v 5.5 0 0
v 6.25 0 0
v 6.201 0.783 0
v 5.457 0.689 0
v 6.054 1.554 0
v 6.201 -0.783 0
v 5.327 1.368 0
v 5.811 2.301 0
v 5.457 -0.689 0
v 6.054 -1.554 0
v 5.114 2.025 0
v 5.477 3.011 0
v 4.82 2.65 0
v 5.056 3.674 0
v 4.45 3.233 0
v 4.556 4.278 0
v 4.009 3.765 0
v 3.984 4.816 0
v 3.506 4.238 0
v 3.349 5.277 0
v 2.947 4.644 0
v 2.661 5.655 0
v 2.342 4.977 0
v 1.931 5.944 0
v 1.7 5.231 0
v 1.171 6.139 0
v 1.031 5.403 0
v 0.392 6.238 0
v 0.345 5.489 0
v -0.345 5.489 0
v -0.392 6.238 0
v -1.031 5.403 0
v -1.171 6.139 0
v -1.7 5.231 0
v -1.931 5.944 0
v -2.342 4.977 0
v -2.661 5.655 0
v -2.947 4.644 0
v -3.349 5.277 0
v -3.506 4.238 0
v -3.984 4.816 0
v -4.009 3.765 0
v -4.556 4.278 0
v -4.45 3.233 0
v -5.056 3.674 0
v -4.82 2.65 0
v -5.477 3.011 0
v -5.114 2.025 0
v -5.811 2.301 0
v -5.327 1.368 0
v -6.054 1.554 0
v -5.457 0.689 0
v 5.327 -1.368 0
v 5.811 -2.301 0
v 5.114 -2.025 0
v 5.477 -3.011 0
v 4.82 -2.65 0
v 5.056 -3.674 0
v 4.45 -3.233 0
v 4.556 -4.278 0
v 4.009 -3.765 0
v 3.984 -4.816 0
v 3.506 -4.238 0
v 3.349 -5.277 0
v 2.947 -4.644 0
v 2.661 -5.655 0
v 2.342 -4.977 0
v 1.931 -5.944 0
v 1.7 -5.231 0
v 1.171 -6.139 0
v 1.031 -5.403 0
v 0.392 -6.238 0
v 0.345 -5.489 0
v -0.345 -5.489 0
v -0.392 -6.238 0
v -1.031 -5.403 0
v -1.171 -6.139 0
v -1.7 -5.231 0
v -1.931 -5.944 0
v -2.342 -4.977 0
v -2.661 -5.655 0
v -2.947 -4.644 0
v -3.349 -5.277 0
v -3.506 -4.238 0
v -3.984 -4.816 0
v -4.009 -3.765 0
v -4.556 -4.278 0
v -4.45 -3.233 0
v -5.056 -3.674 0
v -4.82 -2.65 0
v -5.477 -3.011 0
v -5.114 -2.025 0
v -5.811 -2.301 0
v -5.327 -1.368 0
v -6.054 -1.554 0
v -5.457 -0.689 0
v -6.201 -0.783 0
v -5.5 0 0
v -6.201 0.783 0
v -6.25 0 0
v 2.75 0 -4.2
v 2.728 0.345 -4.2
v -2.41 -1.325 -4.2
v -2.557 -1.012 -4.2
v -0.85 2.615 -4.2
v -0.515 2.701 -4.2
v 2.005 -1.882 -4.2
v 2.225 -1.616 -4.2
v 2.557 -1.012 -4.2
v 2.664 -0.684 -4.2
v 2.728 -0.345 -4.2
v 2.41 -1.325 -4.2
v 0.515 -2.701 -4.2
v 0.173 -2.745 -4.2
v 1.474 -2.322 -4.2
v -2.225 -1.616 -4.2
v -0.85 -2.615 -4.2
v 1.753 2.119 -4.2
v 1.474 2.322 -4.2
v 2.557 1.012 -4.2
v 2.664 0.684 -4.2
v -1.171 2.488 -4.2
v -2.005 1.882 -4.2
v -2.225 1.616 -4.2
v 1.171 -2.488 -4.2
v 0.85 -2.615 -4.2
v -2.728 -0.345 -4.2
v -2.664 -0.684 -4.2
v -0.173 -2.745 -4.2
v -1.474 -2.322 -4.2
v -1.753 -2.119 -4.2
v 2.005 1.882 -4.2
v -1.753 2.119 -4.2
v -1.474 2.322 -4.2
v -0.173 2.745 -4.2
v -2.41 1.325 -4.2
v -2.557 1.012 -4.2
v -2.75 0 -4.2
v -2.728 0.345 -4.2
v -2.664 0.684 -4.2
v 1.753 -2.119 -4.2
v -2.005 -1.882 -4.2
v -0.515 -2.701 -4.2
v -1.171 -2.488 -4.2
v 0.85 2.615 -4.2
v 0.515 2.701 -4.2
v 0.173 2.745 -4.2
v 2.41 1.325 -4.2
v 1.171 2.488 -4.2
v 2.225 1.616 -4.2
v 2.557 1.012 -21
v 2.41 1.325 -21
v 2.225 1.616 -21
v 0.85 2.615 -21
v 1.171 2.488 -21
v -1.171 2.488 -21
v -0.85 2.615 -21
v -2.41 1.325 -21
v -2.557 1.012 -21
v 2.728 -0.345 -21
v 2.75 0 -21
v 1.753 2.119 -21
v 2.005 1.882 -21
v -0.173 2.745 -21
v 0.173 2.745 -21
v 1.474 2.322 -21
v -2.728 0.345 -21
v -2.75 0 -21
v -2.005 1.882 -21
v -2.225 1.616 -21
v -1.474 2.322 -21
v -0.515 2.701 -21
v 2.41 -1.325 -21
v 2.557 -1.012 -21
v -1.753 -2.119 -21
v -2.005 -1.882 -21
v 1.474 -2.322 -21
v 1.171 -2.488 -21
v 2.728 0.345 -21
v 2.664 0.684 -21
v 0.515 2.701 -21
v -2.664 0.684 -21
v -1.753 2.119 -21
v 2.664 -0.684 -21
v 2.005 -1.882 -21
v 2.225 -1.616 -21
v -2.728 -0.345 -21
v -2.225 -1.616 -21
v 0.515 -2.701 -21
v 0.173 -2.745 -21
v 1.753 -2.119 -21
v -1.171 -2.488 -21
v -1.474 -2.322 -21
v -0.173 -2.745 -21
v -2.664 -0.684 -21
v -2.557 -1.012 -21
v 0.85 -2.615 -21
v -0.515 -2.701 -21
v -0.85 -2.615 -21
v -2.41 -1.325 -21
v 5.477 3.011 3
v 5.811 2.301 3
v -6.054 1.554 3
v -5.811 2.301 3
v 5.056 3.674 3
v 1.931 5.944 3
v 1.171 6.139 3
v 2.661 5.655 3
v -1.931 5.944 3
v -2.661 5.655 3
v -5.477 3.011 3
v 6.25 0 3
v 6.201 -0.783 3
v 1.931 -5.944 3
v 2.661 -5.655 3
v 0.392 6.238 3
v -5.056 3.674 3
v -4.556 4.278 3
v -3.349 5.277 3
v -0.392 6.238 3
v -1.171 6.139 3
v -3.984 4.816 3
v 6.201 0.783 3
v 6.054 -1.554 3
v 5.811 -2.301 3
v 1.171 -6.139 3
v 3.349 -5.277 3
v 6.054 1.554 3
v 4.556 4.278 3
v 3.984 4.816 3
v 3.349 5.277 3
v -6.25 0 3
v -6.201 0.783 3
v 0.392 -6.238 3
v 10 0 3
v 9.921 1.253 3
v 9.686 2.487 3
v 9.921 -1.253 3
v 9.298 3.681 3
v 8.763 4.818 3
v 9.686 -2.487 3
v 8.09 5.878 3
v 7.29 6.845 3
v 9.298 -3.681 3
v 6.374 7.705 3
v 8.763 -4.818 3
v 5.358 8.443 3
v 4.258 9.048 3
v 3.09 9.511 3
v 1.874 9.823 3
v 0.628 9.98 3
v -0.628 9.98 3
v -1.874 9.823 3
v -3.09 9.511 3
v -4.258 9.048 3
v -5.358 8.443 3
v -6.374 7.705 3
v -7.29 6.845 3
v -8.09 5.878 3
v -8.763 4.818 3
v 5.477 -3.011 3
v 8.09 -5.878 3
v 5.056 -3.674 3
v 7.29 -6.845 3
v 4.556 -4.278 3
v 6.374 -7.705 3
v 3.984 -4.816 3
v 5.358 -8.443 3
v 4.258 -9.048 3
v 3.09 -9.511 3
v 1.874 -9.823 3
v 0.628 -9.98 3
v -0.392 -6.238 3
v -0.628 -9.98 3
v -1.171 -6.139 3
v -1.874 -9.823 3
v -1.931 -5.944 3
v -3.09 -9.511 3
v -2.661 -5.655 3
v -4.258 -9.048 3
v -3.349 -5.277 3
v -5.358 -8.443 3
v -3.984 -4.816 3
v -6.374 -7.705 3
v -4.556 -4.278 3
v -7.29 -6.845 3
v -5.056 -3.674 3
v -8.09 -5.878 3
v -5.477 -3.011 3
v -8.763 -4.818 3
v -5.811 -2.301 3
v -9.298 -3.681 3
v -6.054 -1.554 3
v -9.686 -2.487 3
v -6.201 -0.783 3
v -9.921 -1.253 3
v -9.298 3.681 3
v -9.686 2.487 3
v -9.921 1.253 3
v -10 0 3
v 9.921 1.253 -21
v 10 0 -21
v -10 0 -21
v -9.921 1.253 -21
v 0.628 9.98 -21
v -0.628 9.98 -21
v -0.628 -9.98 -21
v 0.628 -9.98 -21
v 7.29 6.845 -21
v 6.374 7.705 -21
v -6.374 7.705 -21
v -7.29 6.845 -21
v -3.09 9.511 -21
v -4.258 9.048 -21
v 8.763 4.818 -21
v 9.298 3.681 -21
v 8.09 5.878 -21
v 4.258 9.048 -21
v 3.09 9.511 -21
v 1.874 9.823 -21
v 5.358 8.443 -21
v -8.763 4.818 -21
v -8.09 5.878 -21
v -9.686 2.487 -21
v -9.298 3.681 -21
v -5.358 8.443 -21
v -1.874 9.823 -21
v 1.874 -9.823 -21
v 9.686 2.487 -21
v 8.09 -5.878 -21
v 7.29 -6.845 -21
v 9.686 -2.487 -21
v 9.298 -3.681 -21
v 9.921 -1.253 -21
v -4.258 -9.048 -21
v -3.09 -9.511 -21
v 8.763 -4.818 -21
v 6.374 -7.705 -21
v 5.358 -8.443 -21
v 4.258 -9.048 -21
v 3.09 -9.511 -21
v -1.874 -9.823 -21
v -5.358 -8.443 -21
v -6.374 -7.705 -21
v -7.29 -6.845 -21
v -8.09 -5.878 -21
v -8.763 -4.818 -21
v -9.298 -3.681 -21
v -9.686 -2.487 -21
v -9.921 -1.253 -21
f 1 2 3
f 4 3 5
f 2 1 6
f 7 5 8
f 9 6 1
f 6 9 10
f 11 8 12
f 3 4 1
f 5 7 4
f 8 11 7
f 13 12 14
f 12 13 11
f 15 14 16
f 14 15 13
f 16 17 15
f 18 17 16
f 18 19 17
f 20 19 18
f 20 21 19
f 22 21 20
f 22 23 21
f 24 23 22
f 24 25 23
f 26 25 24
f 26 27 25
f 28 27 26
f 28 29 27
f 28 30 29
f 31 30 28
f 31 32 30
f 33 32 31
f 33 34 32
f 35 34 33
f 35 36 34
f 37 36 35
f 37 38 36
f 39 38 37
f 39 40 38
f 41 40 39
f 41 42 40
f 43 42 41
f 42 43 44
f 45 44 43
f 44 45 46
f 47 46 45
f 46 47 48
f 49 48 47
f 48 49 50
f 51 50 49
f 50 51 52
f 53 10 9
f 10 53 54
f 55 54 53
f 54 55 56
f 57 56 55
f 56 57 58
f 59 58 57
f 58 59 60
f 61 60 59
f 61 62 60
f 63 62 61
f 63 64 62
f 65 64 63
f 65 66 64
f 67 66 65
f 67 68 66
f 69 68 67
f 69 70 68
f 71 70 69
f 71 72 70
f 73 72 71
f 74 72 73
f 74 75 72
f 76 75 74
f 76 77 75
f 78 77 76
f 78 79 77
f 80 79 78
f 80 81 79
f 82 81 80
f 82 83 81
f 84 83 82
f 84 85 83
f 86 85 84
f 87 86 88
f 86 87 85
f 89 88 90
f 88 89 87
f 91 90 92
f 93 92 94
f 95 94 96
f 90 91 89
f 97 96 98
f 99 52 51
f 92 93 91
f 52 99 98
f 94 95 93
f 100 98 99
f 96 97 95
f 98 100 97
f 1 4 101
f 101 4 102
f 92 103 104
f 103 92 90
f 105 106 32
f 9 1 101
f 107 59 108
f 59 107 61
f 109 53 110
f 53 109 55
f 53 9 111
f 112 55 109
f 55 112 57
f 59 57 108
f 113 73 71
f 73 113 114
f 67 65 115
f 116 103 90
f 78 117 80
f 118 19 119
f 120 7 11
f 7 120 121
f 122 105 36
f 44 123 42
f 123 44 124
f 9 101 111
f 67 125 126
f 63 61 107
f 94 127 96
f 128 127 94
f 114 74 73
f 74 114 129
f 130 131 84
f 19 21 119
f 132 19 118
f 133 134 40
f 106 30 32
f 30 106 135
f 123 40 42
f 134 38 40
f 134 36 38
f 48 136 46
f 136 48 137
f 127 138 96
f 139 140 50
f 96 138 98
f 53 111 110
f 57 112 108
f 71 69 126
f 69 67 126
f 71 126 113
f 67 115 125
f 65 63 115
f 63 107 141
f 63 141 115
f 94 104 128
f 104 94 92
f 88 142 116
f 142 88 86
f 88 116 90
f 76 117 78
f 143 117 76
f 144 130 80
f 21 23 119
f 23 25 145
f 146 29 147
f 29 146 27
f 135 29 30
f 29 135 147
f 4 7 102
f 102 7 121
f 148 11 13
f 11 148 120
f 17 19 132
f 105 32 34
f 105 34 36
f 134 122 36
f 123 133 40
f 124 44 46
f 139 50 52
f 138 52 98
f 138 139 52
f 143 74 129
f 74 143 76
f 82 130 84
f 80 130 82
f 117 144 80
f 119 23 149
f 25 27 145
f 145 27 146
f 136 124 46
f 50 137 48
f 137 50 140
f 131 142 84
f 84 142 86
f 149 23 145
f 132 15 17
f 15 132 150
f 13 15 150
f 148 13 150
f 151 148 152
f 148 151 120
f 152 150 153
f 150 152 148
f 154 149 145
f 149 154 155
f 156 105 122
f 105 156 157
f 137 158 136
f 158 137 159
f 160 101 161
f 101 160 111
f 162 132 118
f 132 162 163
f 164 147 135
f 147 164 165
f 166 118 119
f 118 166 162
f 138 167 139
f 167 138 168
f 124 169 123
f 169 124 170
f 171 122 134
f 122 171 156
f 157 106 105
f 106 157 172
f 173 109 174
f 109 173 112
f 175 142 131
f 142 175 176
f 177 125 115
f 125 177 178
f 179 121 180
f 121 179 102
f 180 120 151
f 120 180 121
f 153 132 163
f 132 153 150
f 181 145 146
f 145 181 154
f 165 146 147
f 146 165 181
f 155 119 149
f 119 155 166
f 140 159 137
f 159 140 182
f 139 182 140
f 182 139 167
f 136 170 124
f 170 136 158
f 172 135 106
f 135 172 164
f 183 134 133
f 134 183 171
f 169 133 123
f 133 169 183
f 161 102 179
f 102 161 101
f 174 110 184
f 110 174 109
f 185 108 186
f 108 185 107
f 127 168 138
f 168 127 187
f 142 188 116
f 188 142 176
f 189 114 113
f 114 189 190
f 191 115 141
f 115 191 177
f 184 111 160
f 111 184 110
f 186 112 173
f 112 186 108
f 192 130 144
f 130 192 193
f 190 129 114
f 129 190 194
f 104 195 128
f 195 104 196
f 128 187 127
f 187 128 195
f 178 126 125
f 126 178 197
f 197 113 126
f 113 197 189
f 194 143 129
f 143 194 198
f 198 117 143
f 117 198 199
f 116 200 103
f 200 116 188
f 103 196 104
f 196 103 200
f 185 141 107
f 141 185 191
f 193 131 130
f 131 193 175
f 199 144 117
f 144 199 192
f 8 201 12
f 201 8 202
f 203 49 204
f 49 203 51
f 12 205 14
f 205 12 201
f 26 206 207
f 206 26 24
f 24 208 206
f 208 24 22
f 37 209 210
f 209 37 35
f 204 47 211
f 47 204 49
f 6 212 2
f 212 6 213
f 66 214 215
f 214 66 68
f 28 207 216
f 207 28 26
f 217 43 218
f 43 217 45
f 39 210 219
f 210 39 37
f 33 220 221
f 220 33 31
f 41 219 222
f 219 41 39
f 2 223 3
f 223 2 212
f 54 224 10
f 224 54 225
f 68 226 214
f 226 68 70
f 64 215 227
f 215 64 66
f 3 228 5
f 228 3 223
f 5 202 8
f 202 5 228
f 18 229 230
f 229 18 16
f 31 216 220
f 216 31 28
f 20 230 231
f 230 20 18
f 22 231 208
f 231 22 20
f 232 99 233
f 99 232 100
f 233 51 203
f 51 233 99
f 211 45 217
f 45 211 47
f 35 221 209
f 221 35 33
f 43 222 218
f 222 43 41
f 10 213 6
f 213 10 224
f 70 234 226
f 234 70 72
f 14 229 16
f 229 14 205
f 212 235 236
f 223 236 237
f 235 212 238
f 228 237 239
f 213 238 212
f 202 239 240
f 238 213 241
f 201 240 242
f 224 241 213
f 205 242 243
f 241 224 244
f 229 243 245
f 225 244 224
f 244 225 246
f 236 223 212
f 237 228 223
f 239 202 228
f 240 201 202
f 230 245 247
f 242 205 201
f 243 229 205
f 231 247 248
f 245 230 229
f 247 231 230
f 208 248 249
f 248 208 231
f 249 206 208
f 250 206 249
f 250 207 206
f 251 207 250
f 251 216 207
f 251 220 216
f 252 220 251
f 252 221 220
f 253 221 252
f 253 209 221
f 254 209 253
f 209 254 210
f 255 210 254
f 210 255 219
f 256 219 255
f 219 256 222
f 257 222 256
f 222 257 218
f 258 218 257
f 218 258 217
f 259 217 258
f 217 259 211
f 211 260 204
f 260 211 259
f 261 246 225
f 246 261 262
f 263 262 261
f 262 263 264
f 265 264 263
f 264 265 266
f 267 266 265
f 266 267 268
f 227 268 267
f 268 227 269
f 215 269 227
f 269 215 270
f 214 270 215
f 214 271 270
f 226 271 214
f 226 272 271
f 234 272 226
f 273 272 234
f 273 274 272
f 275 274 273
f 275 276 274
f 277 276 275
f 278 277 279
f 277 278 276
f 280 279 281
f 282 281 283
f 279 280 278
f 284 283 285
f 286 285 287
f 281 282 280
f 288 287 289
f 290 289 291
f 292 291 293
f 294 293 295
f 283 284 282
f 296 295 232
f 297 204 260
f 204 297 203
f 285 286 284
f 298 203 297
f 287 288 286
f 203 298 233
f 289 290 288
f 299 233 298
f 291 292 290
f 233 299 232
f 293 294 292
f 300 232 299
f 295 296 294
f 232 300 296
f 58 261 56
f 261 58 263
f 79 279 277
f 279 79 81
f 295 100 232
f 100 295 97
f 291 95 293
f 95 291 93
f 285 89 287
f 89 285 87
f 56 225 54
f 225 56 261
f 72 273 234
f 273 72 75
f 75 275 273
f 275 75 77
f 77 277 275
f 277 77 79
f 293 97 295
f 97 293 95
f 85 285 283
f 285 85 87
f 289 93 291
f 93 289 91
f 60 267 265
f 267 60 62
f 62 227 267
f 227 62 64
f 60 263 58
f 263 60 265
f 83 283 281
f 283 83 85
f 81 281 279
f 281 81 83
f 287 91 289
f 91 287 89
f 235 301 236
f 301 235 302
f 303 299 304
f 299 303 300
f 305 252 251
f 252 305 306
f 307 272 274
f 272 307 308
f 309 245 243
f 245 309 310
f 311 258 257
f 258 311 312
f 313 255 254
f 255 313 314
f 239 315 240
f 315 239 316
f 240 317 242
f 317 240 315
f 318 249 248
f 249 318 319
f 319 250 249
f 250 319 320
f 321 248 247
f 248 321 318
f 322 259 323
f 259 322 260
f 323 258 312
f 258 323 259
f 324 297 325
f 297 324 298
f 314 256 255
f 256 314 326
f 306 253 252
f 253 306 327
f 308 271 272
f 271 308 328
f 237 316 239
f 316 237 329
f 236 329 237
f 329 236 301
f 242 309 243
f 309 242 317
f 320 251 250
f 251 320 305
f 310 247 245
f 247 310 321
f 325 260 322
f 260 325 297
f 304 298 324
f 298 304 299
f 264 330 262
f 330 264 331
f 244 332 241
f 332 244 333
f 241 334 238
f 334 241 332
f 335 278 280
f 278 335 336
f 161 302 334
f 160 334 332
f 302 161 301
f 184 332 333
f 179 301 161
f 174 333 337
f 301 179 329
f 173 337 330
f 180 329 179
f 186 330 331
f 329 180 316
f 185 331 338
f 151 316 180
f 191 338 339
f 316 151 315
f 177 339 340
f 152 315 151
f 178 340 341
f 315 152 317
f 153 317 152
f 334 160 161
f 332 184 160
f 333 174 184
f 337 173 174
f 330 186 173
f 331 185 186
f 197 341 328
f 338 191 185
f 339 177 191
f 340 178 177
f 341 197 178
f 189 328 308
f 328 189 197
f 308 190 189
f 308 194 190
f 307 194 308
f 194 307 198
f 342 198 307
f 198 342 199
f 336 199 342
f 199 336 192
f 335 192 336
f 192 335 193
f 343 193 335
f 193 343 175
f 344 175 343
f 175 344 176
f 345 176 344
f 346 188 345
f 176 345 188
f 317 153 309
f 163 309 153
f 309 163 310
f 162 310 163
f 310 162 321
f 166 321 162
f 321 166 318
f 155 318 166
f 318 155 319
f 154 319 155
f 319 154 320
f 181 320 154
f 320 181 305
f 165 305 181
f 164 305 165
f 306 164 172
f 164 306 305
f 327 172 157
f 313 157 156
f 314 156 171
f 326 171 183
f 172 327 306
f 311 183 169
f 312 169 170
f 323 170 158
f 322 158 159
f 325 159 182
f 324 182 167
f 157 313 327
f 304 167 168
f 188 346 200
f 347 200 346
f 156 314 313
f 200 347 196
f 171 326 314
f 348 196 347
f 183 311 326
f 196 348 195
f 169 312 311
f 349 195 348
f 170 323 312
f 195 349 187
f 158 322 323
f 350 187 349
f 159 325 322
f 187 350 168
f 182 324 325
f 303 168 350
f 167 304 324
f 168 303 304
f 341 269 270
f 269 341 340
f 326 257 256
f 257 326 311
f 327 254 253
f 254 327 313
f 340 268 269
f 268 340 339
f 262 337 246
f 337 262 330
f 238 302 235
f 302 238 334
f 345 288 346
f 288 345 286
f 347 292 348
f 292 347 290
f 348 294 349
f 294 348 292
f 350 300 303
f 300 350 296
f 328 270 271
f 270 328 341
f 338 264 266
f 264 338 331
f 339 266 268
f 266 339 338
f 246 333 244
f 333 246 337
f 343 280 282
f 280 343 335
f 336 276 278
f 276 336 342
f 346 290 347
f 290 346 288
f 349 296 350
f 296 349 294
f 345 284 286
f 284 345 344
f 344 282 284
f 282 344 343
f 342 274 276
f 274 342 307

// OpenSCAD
$fn = 50;


difference() {
	union() {
		translate(v = [0, 0, -21.0000000000]) {
			cylinder(h = 24, r = 10.0000000000);
		}
	}
	union() {
		translate(v = [0, 0, 0]) {
			rotate(a = [0, 0, 0]) {
				difference() {
					union() {
						translate(v = [0, 0, -24.0000000000]) {
							cylinder(h = 24, r = 2.2500000000);
						}
						translate(v = [0, 0, -4.2000000000]) {
							cylinder(h = 4.2000000000, r1 = 2.7500000000, r2 = 5.5000000000);
						}
						translate(v = [0, 0, -24.0000000000]) {
							cylinder(h = 24, r = 2.7500000000);
						}
						translate(v = [0, 0, -24.0000000000]) {
							cylinder(h = 24, r = 2.2500000000);
						}
					}
					union();
				}
			}
		}
		#cylinder(h = 3, r = 6.2500000000);
	}
}
